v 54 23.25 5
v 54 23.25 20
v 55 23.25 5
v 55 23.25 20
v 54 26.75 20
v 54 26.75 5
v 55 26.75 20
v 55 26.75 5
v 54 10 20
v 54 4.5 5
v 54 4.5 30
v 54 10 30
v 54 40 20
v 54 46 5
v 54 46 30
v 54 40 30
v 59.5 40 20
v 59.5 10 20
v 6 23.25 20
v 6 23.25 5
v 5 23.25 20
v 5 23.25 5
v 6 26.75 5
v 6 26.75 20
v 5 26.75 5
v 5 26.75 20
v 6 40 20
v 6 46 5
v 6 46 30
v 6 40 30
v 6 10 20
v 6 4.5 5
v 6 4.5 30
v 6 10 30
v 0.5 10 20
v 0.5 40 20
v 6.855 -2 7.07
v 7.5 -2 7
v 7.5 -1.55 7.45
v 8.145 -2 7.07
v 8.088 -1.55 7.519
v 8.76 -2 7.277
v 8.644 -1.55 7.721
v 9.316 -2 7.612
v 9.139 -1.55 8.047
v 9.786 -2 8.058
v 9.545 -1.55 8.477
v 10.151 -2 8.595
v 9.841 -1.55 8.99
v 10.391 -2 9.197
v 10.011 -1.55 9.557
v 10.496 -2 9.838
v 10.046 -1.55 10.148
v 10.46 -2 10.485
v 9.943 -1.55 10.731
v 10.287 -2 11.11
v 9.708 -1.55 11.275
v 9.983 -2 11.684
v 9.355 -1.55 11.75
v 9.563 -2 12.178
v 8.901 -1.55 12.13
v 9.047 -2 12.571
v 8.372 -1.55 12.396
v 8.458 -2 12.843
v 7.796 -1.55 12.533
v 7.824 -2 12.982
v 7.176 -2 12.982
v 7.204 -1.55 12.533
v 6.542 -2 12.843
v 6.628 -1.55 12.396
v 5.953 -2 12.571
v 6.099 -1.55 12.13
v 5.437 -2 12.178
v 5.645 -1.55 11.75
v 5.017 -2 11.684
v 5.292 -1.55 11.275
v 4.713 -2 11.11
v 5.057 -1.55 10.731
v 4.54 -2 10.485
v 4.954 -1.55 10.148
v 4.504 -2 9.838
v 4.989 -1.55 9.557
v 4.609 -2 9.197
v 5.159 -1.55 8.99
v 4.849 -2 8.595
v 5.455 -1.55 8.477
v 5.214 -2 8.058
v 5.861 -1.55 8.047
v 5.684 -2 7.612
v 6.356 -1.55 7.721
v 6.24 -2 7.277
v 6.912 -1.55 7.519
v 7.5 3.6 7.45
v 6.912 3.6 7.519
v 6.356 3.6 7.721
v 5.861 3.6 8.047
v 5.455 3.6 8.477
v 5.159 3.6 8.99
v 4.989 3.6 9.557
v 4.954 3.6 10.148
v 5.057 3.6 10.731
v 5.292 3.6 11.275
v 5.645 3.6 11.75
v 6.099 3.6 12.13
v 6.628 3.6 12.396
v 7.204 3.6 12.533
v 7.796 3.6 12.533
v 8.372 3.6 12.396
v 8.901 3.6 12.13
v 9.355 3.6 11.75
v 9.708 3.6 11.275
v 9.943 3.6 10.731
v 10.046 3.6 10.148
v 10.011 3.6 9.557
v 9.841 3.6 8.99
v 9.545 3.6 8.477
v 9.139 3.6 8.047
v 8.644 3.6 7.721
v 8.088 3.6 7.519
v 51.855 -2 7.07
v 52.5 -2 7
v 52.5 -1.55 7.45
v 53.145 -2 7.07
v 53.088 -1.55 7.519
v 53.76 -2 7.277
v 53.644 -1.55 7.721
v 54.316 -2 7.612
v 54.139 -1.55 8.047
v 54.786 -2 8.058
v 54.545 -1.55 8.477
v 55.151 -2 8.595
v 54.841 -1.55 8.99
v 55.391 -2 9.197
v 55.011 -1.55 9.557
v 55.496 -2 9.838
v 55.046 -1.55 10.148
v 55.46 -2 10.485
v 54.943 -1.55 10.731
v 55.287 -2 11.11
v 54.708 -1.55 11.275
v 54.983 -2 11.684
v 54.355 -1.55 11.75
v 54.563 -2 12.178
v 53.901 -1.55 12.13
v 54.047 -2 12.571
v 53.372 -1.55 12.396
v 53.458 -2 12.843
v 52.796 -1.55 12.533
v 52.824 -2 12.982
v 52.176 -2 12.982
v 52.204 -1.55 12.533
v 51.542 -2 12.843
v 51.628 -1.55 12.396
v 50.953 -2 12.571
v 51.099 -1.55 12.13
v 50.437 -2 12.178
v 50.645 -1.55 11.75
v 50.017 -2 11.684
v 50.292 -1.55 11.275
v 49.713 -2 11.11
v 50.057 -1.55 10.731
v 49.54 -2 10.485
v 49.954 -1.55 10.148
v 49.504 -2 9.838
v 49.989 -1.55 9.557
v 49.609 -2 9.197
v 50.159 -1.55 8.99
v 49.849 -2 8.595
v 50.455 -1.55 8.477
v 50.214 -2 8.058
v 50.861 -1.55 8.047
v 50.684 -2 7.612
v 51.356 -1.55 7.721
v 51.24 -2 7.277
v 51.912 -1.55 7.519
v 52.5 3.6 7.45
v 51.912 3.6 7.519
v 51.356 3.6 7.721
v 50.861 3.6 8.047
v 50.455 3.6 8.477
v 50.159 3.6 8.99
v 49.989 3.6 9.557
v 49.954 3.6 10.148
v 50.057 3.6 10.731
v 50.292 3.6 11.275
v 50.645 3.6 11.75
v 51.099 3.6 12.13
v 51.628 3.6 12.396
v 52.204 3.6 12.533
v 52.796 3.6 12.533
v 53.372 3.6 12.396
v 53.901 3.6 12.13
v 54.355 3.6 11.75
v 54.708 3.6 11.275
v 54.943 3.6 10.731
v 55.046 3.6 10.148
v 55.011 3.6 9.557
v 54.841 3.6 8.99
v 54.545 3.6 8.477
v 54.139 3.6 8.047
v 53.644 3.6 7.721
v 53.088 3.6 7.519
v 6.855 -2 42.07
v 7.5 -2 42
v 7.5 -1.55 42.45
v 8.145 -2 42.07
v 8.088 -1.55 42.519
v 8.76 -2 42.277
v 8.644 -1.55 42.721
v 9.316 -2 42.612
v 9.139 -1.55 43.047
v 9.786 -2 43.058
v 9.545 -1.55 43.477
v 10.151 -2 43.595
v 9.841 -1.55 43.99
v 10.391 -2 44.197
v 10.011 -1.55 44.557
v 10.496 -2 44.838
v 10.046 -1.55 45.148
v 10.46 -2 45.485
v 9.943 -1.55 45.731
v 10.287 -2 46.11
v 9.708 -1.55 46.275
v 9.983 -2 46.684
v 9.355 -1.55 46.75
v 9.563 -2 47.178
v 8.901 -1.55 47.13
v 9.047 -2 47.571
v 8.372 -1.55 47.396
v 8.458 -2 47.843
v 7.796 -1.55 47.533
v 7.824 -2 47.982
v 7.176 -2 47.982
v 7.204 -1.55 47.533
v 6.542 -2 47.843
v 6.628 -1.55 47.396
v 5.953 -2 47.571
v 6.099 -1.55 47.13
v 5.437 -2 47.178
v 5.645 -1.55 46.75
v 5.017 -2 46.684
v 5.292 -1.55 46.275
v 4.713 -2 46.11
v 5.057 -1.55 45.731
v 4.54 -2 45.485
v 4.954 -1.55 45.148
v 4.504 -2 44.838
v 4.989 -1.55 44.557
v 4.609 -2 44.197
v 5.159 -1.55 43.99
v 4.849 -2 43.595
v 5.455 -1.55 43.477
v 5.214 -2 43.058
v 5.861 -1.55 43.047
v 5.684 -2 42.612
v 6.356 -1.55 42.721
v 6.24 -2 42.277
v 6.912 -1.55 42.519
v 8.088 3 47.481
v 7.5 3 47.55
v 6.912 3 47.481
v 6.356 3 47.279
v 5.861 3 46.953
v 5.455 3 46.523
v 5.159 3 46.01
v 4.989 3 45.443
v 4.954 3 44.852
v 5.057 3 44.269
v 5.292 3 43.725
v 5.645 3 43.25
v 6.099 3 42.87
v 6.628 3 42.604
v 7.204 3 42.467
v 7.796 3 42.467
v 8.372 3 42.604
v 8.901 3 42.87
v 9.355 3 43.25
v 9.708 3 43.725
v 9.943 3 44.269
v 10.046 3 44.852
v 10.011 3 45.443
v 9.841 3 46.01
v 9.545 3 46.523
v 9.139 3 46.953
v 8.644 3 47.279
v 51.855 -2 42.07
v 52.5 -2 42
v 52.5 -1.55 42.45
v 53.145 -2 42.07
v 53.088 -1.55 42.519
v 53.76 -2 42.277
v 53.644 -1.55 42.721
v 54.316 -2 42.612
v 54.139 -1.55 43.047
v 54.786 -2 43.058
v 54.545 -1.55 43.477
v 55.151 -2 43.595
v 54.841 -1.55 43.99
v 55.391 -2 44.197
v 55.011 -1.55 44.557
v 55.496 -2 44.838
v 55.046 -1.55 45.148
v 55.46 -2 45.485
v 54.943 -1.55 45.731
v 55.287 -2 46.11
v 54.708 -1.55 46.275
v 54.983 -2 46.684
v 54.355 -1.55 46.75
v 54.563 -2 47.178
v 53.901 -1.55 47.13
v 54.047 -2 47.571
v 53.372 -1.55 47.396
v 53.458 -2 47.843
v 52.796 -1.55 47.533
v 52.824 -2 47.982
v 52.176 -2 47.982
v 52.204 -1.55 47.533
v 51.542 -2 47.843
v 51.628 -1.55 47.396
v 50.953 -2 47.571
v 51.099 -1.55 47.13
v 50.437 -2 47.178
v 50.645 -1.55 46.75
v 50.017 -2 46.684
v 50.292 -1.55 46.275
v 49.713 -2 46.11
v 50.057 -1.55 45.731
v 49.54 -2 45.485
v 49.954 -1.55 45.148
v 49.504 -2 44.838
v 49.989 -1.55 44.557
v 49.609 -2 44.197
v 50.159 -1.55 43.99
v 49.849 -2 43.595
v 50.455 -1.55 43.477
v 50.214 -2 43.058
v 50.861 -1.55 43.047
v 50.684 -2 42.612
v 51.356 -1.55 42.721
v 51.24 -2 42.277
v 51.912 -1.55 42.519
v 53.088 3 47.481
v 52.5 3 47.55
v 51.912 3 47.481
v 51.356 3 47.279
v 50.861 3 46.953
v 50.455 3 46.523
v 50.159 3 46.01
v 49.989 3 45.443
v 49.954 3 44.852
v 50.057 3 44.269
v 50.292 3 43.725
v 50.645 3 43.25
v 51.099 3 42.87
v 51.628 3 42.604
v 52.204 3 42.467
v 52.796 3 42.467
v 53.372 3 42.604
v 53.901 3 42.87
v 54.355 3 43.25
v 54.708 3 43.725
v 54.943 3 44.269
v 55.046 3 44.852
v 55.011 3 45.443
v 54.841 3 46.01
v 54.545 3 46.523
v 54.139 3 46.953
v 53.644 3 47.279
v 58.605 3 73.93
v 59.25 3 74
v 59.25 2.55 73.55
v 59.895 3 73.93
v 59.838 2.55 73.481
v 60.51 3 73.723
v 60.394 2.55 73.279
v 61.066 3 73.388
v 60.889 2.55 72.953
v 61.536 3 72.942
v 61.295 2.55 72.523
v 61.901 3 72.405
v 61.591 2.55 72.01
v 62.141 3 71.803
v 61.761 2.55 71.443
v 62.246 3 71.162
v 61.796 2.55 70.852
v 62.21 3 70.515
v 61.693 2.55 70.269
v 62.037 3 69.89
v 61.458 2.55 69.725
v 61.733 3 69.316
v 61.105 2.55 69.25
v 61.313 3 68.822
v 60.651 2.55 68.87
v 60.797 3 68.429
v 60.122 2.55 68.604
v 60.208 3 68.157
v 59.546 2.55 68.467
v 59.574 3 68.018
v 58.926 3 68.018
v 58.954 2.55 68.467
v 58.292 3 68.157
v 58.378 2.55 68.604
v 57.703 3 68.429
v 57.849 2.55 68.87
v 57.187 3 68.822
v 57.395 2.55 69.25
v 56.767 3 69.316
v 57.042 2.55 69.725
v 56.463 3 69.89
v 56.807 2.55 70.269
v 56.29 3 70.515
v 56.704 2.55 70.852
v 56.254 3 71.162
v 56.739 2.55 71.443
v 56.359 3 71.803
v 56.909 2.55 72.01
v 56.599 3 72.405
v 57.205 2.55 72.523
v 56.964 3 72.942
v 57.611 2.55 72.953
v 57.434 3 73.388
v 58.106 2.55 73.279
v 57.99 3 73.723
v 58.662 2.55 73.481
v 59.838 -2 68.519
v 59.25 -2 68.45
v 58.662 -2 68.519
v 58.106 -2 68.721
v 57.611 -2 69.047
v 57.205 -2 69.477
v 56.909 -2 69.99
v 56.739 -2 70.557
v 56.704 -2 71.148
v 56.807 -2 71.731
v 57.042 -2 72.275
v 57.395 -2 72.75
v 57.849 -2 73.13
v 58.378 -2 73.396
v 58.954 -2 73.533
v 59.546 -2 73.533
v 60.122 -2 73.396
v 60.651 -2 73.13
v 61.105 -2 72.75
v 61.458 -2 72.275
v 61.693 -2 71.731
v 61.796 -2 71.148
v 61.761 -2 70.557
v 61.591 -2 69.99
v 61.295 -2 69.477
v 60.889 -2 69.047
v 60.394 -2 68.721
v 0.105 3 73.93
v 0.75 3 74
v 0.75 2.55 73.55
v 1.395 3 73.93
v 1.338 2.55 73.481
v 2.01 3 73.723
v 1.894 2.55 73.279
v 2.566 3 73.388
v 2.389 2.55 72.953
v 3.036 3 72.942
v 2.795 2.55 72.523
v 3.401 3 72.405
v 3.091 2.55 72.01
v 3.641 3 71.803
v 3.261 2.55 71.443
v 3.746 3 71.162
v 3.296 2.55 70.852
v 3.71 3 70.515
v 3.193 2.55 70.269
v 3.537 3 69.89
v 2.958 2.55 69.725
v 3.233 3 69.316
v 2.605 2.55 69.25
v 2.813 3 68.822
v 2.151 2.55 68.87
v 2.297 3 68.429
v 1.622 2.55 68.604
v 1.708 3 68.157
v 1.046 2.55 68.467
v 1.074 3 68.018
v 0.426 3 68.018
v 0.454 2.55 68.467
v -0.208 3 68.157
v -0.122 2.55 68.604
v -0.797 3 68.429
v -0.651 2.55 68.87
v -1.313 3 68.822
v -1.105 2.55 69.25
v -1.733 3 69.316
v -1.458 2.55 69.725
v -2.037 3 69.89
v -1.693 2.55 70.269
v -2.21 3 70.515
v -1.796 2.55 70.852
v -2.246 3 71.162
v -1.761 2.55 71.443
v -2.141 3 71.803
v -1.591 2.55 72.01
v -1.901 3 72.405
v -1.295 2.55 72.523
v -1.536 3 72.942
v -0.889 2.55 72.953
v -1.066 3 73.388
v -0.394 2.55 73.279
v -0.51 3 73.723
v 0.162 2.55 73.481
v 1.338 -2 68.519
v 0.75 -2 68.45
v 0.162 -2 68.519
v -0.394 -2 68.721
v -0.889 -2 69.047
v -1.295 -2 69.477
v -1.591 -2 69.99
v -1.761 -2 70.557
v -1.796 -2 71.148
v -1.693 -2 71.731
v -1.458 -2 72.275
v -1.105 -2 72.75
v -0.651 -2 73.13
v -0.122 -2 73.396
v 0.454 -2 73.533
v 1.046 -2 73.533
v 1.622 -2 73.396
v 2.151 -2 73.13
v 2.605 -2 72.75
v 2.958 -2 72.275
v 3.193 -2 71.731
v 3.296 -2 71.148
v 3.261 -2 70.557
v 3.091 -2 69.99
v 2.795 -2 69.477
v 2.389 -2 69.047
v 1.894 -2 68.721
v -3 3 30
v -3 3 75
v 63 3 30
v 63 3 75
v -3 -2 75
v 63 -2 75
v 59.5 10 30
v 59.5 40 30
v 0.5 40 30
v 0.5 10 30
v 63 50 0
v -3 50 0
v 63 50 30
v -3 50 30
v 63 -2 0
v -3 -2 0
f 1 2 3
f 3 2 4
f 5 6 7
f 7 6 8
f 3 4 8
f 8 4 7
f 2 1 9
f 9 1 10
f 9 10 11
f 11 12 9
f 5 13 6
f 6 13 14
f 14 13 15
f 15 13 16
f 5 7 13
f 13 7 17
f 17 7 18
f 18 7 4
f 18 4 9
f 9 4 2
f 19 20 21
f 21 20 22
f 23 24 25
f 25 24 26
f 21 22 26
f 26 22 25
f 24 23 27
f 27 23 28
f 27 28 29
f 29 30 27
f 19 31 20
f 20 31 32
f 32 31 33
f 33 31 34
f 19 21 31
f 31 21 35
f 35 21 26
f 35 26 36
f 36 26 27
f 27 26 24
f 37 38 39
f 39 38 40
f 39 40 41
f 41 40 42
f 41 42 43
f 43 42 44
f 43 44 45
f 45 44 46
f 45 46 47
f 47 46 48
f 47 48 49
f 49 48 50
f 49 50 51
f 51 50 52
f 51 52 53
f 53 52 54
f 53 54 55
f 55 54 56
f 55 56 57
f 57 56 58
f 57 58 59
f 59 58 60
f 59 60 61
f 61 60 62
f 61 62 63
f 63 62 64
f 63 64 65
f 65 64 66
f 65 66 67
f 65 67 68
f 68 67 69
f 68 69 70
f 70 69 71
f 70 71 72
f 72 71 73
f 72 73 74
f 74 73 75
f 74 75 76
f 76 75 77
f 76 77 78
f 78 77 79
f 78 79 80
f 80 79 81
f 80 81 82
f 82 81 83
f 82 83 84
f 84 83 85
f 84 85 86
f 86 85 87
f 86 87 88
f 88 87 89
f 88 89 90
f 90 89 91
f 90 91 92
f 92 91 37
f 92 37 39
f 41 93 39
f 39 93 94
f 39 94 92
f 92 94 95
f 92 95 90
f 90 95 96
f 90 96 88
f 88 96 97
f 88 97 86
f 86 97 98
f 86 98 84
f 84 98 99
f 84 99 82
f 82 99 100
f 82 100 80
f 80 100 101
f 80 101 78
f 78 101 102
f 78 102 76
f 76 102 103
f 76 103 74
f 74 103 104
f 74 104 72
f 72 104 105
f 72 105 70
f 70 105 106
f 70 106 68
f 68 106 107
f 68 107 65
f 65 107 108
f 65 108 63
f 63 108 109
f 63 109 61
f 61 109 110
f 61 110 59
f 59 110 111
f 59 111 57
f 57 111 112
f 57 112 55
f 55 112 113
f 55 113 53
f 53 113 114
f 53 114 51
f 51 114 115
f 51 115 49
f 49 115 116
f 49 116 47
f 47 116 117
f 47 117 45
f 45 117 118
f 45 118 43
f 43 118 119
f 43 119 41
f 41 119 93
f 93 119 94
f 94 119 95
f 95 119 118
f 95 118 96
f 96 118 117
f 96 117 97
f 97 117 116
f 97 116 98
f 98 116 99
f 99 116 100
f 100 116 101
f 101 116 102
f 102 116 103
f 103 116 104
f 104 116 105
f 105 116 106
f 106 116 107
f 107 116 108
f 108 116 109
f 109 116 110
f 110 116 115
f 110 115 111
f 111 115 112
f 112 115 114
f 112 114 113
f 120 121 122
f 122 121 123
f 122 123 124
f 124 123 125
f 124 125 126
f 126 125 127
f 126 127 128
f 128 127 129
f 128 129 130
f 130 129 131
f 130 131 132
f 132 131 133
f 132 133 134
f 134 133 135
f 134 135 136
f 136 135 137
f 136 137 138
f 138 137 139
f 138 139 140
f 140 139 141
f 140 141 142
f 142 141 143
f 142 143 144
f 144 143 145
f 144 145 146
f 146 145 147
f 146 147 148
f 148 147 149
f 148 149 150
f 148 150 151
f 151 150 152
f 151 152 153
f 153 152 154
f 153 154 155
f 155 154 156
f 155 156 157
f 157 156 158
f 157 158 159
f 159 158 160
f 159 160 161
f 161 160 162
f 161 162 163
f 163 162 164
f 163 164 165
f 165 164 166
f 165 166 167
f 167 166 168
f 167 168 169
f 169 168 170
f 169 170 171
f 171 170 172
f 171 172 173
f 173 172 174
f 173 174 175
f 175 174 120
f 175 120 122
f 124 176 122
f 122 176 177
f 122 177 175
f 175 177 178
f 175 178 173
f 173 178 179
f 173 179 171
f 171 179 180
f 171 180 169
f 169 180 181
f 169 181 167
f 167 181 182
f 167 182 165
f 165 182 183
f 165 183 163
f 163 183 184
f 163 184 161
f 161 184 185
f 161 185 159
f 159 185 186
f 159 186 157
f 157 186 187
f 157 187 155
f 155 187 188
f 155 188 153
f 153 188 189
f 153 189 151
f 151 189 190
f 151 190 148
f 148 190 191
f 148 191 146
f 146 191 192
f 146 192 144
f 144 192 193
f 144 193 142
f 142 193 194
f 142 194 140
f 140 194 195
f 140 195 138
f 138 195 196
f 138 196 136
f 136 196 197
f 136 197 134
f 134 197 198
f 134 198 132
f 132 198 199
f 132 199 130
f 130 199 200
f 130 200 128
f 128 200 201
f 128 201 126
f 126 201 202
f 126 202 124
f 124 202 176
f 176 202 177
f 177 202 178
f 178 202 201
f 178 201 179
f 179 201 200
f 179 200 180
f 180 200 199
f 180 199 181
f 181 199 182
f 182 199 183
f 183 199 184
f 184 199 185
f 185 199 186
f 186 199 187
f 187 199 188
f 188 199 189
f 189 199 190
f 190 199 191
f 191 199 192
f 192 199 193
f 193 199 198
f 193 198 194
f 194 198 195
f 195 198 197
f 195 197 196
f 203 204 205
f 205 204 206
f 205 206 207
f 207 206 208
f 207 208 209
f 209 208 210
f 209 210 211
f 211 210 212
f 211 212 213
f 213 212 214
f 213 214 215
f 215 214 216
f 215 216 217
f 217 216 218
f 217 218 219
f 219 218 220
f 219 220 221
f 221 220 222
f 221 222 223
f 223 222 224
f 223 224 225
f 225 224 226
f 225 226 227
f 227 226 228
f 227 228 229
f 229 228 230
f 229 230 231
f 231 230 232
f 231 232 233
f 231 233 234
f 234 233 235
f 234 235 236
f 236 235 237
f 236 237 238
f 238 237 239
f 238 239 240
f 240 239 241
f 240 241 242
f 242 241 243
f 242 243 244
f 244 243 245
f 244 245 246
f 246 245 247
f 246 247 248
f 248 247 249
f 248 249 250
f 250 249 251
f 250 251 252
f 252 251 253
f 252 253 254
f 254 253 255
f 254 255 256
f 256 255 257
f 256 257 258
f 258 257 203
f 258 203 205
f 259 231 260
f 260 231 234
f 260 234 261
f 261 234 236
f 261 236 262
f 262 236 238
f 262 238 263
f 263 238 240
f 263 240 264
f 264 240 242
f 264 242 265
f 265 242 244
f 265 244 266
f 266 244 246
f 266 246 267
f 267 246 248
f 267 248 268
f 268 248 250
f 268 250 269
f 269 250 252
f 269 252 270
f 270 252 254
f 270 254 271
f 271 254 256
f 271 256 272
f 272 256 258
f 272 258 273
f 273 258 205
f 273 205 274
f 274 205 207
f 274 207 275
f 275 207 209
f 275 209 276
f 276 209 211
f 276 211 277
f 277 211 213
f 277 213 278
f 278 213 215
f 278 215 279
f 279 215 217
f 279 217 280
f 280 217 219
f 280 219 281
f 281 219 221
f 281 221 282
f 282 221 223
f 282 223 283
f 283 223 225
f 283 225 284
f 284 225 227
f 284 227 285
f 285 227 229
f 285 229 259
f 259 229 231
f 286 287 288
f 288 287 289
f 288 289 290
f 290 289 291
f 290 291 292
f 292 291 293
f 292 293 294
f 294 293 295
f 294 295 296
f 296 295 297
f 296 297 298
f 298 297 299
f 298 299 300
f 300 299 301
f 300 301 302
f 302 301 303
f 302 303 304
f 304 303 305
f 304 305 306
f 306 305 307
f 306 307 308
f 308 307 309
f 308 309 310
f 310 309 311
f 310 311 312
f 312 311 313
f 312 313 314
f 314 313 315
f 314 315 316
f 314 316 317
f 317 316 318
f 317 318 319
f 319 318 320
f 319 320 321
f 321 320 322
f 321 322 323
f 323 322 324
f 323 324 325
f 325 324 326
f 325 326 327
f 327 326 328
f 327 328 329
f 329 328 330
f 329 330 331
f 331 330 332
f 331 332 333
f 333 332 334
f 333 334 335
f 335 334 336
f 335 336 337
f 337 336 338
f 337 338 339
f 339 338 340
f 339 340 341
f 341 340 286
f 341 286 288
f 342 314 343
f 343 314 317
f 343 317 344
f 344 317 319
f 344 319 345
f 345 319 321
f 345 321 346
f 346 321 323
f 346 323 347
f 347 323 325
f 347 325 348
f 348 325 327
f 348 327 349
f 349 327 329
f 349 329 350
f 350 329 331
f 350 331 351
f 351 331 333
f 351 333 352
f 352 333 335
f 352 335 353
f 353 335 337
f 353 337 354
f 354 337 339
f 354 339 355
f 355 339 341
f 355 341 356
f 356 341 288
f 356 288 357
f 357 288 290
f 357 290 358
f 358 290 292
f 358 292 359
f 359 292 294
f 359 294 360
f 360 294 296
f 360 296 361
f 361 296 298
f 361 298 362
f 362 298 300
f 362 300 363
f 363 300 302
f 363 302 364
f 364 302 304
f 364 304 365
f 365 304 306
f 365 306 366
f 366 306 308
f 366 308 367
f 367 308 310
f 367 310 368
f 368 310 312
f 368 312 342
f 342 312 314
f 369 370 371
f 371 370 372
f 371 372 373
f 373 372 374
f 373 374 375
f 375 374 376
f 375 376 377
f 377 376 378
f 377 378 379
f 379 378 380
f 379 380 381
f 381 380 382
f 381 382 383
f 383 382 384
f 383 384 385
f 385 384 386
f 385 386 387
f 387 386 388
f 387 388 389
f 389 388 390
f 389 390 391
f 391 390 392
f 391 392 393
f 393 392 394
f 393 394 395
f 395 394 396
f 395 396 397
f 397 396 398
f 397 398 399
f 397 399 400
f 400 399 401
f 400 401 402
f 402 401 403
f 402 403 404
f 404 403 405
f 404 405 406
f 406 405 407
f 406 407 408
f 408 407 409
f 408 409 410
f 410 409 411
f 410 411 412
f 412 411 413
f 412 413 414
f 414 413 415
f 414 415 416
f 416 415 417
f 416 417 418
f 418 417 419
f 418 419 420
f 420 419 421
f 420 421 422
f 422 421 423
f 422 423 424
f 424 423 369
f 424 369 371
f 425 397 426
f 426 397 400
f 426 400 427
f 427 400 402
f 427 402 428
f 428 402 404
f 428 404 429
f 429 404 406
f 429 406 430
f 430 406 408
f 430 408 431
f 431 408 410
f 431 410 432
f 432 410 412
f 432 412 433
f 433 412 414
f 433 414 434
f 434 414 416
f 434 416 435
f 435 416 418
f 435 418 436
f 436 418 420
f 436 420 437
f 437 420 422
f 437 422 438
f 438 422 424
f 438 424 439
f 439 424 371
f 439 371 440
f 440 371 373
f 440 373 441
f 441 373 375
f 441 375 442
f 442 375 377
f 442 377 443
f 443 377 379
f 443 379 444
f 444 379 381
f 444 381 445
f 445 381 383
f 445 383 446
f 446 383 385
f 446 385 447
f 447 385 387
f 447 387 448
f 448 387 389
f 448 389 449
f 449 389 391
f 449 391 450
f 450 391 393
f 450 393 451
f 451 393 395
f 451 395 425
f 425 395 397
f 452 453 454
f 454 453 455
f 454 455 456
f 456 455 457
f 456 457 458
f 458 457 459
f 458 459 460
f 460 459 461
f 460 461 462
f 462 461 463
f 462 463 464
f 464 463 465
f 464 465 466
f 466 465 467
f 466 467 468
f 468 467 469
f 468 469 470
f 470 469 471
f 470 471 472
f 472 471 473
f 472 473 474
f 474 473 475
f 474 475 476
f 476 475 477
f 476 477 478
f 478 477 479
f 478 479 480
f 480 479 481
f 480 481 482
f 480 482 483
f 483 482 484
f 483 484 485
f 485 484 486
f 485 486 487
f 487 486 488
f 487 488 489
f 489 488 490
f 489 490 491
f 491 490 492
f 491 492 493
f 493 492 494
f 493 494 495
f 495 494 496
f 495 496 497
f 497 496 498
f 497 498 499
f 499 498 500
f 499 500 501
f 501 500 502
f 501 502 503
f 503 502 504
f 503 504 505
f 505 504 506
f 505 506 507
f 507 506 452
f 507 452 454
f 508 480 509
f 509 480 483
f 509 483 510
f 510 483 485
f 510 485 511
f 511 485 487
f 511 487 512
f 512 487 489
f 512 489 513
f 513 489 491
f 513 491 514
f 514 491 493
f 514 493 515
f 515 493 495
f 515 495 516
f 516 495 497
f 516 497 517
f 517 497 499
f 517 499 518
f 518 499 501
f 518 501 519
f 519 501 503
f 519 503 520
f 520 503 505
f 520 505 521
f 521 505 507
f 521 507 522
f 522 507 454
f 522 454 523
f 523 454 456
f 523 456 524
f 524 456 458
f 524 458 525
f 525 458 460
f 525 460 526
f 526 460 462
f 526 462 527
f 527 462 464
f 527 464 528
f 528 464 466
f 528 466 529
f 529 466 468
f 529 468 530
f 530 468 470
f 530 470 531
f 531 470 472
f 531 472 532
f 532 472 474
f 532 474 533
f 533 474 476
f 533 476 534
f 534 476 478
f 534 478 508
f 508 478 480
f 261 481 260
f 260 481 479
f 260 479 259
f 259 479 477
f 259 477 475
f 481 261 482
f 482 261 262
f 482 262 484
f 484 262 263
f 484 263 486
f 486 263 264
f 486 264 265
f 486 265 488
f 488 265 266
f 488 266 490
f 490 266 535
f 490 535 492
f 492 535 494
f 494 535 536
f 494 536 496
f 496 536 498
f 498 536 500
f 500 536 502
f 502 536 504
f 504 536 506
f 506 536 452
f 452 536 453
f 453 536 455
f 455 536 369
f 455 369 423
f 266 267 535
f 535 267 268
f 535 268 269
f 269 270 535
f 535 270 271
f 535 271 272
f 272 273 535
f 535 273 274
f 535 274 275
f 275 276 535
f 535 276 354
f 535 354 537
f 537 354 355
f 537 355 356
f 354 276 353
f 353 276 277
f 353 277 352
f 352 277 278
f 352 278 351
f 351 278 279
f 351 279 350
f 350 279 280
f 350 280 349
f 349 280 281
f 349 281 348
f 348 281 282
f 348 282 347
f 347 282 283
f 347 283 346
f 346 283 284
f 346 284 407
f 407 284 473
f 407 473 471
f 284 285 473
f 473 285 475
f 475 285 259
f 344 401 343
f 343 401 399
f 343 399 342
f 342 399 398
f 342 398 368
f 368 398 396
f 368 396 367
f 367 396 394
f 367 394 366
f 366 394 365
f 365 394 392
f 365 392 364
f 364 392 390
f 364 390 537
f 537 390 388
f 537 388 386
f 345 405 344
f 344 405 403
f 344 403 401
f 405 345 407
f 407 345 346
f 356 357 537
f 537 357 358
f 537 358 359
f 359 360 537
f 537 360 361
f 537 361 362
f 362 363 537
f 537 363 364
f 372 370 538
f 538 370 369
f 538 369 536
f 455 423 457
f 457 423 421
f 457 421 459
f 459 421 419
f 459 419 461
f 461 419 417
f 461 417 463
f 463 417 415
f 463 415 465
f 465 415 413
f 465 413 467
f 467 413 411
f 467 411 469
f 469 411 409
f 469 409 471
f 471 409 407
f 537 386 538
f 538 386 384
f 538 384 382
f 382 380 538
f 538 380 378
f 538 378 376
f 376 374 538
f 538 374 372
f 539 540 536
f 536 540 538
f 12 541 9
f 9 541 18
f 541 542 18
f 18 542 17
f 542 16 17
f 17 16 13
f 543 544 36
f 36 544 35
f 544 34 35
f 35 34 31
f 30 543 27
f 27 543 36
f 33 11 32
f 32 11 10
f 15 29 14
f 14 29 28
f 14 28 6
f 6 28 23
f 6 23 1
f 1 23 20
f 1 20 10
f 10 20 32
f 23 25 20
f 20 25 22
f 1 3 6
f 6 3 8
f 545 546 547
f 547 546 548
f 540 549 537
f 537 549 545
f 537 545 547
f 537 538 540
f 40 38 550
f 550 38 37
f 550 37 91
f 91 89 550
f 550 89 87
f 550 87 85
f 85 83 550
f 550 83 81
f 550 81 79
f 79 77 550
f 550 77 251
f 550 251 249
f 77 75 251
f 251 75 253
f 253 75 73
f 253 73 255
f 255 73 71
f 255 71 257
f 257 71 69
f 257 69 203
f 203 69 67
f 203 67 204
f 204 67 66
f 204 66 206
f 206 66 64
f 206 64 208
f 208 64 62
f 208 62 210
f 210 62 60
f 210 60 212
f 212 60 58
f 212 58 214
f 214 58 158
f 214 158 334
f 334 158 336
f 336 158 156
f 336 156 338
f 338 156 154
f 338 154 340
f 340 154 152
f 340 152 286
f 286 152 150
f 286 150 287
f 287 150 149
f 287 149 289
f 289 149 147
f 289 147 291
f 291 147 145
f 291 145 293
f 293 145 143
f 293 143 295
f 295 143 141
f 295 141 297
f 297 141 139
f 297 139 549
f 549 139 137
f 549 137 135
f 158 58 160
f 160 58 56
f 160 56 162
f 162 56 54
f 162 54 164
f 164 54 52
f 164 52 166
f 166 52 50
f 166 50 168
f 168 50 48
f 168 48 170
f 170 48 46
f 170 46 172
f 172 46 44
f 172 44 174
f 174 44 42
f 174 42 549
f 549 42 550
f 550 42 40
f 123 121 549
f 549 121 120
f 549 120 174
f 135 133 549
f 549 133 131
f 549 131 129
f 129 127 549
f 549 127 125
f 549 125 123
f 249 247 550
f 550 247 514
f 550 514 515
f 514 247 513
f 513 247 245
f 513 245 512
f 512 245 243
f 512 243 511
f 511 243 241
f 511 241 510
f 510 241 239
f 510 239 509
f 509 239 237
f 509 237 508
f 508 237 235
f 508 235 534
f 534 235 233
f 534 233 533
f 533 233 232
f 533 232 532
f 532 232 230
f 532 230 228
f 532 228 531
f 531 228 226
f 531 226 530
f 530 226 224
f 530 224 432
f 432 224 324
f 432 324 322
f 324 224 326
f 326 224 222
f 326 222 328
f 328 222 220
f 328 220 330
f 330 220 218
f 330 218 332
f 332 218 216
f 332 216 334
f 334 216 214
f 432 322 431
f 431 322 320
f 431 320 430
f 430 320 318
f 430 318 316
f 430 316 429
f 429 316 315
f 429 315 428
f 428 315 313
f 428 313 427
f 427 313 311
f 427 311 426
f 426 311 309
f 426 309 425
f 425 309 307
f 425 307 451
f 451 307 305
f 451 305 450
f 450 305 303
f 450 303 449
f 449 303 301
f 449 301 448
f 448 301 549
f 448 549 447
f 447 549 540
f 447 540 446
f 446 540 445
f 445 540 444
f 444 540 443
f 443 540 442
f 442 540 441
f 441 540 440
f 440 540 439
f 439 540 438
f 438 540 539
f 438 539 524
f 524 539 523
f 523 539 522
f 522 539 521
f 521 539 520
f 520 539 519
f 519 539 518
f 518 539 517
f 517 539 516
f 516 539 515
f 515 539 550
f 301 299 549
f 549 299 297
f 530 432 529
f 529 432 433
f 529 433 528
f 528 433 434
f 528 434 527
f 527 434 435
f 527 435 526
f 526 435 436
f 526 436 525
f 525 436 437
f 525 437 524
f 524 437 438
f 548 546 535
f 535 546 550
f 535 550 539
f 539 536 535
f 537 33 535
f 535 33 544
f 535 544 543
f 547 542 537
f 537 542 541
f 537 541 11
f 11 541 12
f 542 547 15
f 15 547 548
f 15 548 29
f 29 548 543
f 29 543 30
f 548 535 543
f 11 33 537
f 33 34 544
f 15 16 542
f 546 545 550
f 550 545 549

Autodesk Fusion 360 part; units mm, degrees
sketch "Sketch1" plane through (0, 0, 0) normal (0, 0, 1) x (1, 0, 0)
  line L0 (0, 0) -> (60, 0)
  line L1 (60, 0) -> (60, 50)
  line L2 (60, 50) -> (0, 50)
  line L3 (0, 50) -> (0, 0)
  dimension "d1" = 60
  dimension "d2" = 50
extrude "Extrude1" add sketch "Sketch1" along normal blind 30
sketch "Sketch2" plane through (0, 0, 30) normal (0, 0, 1) x (-1, 0, 0)
  line L0 (0, -50) -> (0, 0)
  line L1 (0, 0) -> (-60, 0)
  line L2 (-60, 0) -> (-60, -50)
  line L3 (-60, -50) -> (0, -50)
  line L4 (-54, -5) -> (-6, -5)
  line L5 (-6, -5) -> (-6, -45)
  line L6 (-6, -45) -> (-54, -45)
  line L7 (-54, -45) -> (-54, -5)
  line L8 (-54, -5) -> (-6, -45) construction
  line L9 (-6, -5) -> (-54, -45) construction
  point P0 (-30, -25)
  dimension "d5" = 48
  dimension "d6" = 40
extrude "Extrude2" cut sketch "Sketch2" against normal blind 25 contours L4 L5 L6 L7
sketch "Sketch3" plane through (0, 0, 30) normal (0, 0, 1) x (-1, 0, 0)
  line L0 (-6, -5) -> (-6, -45)
  line L1 (-6, -45) -> (-54, -45)
  line L2 (-54, -45) -> (-54, -5)
  line L3 (-54, -5) -> (-6, -5)
  line L4 (0, -50) -> (0, 0)
  line L5 (0, 0) -> (-60, 0)
  line L6 (-60, 0) -> (-60, -50)
  line L7 (-60, -50) -> (0, -50)
  line L8 (-54, -10) -> (-59.5, -10)
  line L9 (-59.5, -10) -> (-59.5, -40)
  line L10 (-59.5, -40) -> (-54, -40)
  line L11 (-54, -40) -> (-54, -10)
  line L12 (-6, -10) -> (-0.5, -10)
  line L13 (-0.5, -10) -> (-0.5, -40)
  line L14 (-0.5, -40) -> (-6, -40)
  line L15 (-6, -40) -> (-6, -10)
  dimension "d9" = 5.5
  dimension "d10" = 30
  dimension "d11" = 5.5
  dimension "d12" = 30
extrude "Extrude3" cut sketch "Sketch3" against normal blind 10 contours L0 L12 L13 L14 L15 | L2 L8 L9 L10 L11
move_face "OffsetFaces1" offset 3 1 faces at (0, 33.3333, 10)
move_face "OffsetFaces2" offset 3 1 faces at (60, 33.3333, 20)
move_face "OffsetFaces3" offset 2 1 faces at (19, 0, 20)
sketch "Sketch4" plane through (0, 0, 30) normal (0, 0, 1) x (-1, 0, 0)
  line L0 (-59.5, -10) -> (-54, -10)
  line L1 (-54, -10) -> (-54, -5)
  line L2 (-54, -5) -> (-6, -5)
  line L3 (-6, -5) -> (-6, -10)
  line L4 (-6, -10) -> (-0.5, -10)
  line L5 (-0.5, -10) -> (-0.5, -40)
  line L6 (-0.5, -40) -> (-6, -40)
  line L7 (-6, -40) -> (-6, -45)
  line L8 (-6, -45) -> (-54, -45)
  line L9 (-54, -45) -> (-54, -40)
  line L10 (-54, -40) -> (-59.5, -40)
  line L11 (-59.5, -40) -> (-59.5, -10)
  line L12 (3, -50) -> (3, 2)
  line L13 (3, 2) -> (-63, 2)
  line L14 (-63, 2) -> (-63, -50)
  line L15 (-63, -50) -> (3, -50)
  line L16 (3, 2) -> (-63, 2)
  line L17 (-63, 2) -> (-63, -3)
  line L18 (-63, -3) -> (3, -3)
  line L19 (3, -3) -> (3, 2)
  dimension "d18" = 66
  dimension "d19" = 5
extrude "Extrude4" add sketch "Sketch4" along normal blind 45 contours L12 L13 L14 L16 L17 L18 L19
sketch "Sketch7" plane through (0, 3, 0) normal (0, 1, 0) x (-1, 0, 0)
  line L0 (-63, 30) -> (3, 30)
  line L1 (3, 30) -> (3, 75)
  line L2 (3, 75) -> (-63, 75)
  line L3 (-63, 75) -> (-63, 30)
  point P0 (-59.25, 71)
  point P1 (-0.75, 71)
hole "Hole1" at (59.25, 3, 71) at (0.75, 3, 71) direction (0, -1, 0) diameter 5.1 depth 130 tip angle 118 countersink diameter 6 countersink angle 90
sketch "Sketch8" plane through (0, -2, 0) normal (0, -1, 0) x (1, 0, 0)
  circle A0 centre (59.25, 71) radius 2.55
  circle A1 centre (0.75, 71) radius 2.55
  line L0 (-3, 0) -> (63, 0)
  line L1 (63, 0) -> (63, 75)
  line L2 (63, 75) -> (-3, 75)
  line L3 (-3, 75) -> (-3, 0)
  point P0 (52.5, 45)
  point P1 (7.5, 45)
hole "Hole2" at (7.5, -2, 45) at (52.5, -2, 45) direction (0, 1, 0) diameter 5.1 depth 130 tip angle 118 countersink diameter 6 countersink angle 90
sketch "Sketch9" plane through (0, -2, 0) normal (0, -1, 0) x (1, 0, 0)
  circle A0 centre (7.5, 45) radius 3
  circle A1 centre (52.5, 45) radius 3
  circle A2 centre (59.25, 71) radius 2.55
  circle A3 centre (0.75, 71) radius 2.55
  line L0 (-3, 0) -> (63, 0)
  line L1 (63, 0) -> (63, 75)
  line L2 (63, 75) -> (-3, 75)
  line L3 (-3, 75) -> (-3, 0)
  point P0 (7.5, 10)
  point P1 (52.5, 10)
hole "Hole3" at (7.5, -2, 10) at (52.5, -2, 10) direction (0, 1, 0) diameter 5.1 depth 5.6 tip angle 180 countersink diameter 6 countersink angle 90
sketch "Sketch10" plane through (6, 0, 0) normal (1, 0, 0) x (0, 1, 0)
  line L0 (40, 30) -> (40, 20)
  line L1 (40, 20) -> (10, 20)
  line L2 (10, 20) -> (10, 30)
  line L3 (10, 30) -> (5, 30)
  line L4 (5, 30) -> (5, 5)
  line L5 (5, 5) -> (45, 5)
  line L6 (45, 5) -> (45, 30)
  line L7 (45, 30) -> (40, 30)
  line L8 (23.25, 30) -> (26.75, 30)
  line L9 (26.75, 30) -> (26.75, 0)
  line L10 (26.75, 0) -> (23.25, 0)
  line L11 (23.25, 0) -> (23.25, 30)
  point P0 (23.25, 30)
  dimension "d41" = 3.5
extrude "Extrude5" cut sketch "Sketch10" against normal blind 1 contours L1 L5 L9 L11
sketch "Sketch11" plane through (54, 0, 0) normal (-1, 0, 0) x (0, -1, 0)
  line L0 (-10, 30) -> (-10, 20)
  line L1 (-10, 20) -> (-40, 20)
  line L2 (-40, 20) -> (-40, 30)
  line L3 (-40, 30) -> (-45, 30)
  line L4 (-45, 30) -> (-45, 5)
  line L5 (-45, 5) -> (-5, 5)
  line L6 (-5, 5) -> (-5, 30)
  line L7 (-5, 30) -> (-10, 30)
  line L8 (-23.25, 30) -> (-26.75, 30)
  line L9 (-26.75, 30) -> (-26.75, 0)
  line L10 (-26.75, 0) -> (-23.25, 0)
  line L11 (-23.25, 0) -> (-23.25, 30)
  point P0 (-23.25, 30)
  dimension "d44" = 3.5
extrude "Extrude6" cut sketch "Sketch11" against normal blind 1 contours L1 L5 L9 L11
move_face "OffsetFaces4" offset -1 1 faces at (22, 45, 21.6667)
move_face "OffsetFaces5" offset -0.5 1 faces at (38, 5, 13.3333)
